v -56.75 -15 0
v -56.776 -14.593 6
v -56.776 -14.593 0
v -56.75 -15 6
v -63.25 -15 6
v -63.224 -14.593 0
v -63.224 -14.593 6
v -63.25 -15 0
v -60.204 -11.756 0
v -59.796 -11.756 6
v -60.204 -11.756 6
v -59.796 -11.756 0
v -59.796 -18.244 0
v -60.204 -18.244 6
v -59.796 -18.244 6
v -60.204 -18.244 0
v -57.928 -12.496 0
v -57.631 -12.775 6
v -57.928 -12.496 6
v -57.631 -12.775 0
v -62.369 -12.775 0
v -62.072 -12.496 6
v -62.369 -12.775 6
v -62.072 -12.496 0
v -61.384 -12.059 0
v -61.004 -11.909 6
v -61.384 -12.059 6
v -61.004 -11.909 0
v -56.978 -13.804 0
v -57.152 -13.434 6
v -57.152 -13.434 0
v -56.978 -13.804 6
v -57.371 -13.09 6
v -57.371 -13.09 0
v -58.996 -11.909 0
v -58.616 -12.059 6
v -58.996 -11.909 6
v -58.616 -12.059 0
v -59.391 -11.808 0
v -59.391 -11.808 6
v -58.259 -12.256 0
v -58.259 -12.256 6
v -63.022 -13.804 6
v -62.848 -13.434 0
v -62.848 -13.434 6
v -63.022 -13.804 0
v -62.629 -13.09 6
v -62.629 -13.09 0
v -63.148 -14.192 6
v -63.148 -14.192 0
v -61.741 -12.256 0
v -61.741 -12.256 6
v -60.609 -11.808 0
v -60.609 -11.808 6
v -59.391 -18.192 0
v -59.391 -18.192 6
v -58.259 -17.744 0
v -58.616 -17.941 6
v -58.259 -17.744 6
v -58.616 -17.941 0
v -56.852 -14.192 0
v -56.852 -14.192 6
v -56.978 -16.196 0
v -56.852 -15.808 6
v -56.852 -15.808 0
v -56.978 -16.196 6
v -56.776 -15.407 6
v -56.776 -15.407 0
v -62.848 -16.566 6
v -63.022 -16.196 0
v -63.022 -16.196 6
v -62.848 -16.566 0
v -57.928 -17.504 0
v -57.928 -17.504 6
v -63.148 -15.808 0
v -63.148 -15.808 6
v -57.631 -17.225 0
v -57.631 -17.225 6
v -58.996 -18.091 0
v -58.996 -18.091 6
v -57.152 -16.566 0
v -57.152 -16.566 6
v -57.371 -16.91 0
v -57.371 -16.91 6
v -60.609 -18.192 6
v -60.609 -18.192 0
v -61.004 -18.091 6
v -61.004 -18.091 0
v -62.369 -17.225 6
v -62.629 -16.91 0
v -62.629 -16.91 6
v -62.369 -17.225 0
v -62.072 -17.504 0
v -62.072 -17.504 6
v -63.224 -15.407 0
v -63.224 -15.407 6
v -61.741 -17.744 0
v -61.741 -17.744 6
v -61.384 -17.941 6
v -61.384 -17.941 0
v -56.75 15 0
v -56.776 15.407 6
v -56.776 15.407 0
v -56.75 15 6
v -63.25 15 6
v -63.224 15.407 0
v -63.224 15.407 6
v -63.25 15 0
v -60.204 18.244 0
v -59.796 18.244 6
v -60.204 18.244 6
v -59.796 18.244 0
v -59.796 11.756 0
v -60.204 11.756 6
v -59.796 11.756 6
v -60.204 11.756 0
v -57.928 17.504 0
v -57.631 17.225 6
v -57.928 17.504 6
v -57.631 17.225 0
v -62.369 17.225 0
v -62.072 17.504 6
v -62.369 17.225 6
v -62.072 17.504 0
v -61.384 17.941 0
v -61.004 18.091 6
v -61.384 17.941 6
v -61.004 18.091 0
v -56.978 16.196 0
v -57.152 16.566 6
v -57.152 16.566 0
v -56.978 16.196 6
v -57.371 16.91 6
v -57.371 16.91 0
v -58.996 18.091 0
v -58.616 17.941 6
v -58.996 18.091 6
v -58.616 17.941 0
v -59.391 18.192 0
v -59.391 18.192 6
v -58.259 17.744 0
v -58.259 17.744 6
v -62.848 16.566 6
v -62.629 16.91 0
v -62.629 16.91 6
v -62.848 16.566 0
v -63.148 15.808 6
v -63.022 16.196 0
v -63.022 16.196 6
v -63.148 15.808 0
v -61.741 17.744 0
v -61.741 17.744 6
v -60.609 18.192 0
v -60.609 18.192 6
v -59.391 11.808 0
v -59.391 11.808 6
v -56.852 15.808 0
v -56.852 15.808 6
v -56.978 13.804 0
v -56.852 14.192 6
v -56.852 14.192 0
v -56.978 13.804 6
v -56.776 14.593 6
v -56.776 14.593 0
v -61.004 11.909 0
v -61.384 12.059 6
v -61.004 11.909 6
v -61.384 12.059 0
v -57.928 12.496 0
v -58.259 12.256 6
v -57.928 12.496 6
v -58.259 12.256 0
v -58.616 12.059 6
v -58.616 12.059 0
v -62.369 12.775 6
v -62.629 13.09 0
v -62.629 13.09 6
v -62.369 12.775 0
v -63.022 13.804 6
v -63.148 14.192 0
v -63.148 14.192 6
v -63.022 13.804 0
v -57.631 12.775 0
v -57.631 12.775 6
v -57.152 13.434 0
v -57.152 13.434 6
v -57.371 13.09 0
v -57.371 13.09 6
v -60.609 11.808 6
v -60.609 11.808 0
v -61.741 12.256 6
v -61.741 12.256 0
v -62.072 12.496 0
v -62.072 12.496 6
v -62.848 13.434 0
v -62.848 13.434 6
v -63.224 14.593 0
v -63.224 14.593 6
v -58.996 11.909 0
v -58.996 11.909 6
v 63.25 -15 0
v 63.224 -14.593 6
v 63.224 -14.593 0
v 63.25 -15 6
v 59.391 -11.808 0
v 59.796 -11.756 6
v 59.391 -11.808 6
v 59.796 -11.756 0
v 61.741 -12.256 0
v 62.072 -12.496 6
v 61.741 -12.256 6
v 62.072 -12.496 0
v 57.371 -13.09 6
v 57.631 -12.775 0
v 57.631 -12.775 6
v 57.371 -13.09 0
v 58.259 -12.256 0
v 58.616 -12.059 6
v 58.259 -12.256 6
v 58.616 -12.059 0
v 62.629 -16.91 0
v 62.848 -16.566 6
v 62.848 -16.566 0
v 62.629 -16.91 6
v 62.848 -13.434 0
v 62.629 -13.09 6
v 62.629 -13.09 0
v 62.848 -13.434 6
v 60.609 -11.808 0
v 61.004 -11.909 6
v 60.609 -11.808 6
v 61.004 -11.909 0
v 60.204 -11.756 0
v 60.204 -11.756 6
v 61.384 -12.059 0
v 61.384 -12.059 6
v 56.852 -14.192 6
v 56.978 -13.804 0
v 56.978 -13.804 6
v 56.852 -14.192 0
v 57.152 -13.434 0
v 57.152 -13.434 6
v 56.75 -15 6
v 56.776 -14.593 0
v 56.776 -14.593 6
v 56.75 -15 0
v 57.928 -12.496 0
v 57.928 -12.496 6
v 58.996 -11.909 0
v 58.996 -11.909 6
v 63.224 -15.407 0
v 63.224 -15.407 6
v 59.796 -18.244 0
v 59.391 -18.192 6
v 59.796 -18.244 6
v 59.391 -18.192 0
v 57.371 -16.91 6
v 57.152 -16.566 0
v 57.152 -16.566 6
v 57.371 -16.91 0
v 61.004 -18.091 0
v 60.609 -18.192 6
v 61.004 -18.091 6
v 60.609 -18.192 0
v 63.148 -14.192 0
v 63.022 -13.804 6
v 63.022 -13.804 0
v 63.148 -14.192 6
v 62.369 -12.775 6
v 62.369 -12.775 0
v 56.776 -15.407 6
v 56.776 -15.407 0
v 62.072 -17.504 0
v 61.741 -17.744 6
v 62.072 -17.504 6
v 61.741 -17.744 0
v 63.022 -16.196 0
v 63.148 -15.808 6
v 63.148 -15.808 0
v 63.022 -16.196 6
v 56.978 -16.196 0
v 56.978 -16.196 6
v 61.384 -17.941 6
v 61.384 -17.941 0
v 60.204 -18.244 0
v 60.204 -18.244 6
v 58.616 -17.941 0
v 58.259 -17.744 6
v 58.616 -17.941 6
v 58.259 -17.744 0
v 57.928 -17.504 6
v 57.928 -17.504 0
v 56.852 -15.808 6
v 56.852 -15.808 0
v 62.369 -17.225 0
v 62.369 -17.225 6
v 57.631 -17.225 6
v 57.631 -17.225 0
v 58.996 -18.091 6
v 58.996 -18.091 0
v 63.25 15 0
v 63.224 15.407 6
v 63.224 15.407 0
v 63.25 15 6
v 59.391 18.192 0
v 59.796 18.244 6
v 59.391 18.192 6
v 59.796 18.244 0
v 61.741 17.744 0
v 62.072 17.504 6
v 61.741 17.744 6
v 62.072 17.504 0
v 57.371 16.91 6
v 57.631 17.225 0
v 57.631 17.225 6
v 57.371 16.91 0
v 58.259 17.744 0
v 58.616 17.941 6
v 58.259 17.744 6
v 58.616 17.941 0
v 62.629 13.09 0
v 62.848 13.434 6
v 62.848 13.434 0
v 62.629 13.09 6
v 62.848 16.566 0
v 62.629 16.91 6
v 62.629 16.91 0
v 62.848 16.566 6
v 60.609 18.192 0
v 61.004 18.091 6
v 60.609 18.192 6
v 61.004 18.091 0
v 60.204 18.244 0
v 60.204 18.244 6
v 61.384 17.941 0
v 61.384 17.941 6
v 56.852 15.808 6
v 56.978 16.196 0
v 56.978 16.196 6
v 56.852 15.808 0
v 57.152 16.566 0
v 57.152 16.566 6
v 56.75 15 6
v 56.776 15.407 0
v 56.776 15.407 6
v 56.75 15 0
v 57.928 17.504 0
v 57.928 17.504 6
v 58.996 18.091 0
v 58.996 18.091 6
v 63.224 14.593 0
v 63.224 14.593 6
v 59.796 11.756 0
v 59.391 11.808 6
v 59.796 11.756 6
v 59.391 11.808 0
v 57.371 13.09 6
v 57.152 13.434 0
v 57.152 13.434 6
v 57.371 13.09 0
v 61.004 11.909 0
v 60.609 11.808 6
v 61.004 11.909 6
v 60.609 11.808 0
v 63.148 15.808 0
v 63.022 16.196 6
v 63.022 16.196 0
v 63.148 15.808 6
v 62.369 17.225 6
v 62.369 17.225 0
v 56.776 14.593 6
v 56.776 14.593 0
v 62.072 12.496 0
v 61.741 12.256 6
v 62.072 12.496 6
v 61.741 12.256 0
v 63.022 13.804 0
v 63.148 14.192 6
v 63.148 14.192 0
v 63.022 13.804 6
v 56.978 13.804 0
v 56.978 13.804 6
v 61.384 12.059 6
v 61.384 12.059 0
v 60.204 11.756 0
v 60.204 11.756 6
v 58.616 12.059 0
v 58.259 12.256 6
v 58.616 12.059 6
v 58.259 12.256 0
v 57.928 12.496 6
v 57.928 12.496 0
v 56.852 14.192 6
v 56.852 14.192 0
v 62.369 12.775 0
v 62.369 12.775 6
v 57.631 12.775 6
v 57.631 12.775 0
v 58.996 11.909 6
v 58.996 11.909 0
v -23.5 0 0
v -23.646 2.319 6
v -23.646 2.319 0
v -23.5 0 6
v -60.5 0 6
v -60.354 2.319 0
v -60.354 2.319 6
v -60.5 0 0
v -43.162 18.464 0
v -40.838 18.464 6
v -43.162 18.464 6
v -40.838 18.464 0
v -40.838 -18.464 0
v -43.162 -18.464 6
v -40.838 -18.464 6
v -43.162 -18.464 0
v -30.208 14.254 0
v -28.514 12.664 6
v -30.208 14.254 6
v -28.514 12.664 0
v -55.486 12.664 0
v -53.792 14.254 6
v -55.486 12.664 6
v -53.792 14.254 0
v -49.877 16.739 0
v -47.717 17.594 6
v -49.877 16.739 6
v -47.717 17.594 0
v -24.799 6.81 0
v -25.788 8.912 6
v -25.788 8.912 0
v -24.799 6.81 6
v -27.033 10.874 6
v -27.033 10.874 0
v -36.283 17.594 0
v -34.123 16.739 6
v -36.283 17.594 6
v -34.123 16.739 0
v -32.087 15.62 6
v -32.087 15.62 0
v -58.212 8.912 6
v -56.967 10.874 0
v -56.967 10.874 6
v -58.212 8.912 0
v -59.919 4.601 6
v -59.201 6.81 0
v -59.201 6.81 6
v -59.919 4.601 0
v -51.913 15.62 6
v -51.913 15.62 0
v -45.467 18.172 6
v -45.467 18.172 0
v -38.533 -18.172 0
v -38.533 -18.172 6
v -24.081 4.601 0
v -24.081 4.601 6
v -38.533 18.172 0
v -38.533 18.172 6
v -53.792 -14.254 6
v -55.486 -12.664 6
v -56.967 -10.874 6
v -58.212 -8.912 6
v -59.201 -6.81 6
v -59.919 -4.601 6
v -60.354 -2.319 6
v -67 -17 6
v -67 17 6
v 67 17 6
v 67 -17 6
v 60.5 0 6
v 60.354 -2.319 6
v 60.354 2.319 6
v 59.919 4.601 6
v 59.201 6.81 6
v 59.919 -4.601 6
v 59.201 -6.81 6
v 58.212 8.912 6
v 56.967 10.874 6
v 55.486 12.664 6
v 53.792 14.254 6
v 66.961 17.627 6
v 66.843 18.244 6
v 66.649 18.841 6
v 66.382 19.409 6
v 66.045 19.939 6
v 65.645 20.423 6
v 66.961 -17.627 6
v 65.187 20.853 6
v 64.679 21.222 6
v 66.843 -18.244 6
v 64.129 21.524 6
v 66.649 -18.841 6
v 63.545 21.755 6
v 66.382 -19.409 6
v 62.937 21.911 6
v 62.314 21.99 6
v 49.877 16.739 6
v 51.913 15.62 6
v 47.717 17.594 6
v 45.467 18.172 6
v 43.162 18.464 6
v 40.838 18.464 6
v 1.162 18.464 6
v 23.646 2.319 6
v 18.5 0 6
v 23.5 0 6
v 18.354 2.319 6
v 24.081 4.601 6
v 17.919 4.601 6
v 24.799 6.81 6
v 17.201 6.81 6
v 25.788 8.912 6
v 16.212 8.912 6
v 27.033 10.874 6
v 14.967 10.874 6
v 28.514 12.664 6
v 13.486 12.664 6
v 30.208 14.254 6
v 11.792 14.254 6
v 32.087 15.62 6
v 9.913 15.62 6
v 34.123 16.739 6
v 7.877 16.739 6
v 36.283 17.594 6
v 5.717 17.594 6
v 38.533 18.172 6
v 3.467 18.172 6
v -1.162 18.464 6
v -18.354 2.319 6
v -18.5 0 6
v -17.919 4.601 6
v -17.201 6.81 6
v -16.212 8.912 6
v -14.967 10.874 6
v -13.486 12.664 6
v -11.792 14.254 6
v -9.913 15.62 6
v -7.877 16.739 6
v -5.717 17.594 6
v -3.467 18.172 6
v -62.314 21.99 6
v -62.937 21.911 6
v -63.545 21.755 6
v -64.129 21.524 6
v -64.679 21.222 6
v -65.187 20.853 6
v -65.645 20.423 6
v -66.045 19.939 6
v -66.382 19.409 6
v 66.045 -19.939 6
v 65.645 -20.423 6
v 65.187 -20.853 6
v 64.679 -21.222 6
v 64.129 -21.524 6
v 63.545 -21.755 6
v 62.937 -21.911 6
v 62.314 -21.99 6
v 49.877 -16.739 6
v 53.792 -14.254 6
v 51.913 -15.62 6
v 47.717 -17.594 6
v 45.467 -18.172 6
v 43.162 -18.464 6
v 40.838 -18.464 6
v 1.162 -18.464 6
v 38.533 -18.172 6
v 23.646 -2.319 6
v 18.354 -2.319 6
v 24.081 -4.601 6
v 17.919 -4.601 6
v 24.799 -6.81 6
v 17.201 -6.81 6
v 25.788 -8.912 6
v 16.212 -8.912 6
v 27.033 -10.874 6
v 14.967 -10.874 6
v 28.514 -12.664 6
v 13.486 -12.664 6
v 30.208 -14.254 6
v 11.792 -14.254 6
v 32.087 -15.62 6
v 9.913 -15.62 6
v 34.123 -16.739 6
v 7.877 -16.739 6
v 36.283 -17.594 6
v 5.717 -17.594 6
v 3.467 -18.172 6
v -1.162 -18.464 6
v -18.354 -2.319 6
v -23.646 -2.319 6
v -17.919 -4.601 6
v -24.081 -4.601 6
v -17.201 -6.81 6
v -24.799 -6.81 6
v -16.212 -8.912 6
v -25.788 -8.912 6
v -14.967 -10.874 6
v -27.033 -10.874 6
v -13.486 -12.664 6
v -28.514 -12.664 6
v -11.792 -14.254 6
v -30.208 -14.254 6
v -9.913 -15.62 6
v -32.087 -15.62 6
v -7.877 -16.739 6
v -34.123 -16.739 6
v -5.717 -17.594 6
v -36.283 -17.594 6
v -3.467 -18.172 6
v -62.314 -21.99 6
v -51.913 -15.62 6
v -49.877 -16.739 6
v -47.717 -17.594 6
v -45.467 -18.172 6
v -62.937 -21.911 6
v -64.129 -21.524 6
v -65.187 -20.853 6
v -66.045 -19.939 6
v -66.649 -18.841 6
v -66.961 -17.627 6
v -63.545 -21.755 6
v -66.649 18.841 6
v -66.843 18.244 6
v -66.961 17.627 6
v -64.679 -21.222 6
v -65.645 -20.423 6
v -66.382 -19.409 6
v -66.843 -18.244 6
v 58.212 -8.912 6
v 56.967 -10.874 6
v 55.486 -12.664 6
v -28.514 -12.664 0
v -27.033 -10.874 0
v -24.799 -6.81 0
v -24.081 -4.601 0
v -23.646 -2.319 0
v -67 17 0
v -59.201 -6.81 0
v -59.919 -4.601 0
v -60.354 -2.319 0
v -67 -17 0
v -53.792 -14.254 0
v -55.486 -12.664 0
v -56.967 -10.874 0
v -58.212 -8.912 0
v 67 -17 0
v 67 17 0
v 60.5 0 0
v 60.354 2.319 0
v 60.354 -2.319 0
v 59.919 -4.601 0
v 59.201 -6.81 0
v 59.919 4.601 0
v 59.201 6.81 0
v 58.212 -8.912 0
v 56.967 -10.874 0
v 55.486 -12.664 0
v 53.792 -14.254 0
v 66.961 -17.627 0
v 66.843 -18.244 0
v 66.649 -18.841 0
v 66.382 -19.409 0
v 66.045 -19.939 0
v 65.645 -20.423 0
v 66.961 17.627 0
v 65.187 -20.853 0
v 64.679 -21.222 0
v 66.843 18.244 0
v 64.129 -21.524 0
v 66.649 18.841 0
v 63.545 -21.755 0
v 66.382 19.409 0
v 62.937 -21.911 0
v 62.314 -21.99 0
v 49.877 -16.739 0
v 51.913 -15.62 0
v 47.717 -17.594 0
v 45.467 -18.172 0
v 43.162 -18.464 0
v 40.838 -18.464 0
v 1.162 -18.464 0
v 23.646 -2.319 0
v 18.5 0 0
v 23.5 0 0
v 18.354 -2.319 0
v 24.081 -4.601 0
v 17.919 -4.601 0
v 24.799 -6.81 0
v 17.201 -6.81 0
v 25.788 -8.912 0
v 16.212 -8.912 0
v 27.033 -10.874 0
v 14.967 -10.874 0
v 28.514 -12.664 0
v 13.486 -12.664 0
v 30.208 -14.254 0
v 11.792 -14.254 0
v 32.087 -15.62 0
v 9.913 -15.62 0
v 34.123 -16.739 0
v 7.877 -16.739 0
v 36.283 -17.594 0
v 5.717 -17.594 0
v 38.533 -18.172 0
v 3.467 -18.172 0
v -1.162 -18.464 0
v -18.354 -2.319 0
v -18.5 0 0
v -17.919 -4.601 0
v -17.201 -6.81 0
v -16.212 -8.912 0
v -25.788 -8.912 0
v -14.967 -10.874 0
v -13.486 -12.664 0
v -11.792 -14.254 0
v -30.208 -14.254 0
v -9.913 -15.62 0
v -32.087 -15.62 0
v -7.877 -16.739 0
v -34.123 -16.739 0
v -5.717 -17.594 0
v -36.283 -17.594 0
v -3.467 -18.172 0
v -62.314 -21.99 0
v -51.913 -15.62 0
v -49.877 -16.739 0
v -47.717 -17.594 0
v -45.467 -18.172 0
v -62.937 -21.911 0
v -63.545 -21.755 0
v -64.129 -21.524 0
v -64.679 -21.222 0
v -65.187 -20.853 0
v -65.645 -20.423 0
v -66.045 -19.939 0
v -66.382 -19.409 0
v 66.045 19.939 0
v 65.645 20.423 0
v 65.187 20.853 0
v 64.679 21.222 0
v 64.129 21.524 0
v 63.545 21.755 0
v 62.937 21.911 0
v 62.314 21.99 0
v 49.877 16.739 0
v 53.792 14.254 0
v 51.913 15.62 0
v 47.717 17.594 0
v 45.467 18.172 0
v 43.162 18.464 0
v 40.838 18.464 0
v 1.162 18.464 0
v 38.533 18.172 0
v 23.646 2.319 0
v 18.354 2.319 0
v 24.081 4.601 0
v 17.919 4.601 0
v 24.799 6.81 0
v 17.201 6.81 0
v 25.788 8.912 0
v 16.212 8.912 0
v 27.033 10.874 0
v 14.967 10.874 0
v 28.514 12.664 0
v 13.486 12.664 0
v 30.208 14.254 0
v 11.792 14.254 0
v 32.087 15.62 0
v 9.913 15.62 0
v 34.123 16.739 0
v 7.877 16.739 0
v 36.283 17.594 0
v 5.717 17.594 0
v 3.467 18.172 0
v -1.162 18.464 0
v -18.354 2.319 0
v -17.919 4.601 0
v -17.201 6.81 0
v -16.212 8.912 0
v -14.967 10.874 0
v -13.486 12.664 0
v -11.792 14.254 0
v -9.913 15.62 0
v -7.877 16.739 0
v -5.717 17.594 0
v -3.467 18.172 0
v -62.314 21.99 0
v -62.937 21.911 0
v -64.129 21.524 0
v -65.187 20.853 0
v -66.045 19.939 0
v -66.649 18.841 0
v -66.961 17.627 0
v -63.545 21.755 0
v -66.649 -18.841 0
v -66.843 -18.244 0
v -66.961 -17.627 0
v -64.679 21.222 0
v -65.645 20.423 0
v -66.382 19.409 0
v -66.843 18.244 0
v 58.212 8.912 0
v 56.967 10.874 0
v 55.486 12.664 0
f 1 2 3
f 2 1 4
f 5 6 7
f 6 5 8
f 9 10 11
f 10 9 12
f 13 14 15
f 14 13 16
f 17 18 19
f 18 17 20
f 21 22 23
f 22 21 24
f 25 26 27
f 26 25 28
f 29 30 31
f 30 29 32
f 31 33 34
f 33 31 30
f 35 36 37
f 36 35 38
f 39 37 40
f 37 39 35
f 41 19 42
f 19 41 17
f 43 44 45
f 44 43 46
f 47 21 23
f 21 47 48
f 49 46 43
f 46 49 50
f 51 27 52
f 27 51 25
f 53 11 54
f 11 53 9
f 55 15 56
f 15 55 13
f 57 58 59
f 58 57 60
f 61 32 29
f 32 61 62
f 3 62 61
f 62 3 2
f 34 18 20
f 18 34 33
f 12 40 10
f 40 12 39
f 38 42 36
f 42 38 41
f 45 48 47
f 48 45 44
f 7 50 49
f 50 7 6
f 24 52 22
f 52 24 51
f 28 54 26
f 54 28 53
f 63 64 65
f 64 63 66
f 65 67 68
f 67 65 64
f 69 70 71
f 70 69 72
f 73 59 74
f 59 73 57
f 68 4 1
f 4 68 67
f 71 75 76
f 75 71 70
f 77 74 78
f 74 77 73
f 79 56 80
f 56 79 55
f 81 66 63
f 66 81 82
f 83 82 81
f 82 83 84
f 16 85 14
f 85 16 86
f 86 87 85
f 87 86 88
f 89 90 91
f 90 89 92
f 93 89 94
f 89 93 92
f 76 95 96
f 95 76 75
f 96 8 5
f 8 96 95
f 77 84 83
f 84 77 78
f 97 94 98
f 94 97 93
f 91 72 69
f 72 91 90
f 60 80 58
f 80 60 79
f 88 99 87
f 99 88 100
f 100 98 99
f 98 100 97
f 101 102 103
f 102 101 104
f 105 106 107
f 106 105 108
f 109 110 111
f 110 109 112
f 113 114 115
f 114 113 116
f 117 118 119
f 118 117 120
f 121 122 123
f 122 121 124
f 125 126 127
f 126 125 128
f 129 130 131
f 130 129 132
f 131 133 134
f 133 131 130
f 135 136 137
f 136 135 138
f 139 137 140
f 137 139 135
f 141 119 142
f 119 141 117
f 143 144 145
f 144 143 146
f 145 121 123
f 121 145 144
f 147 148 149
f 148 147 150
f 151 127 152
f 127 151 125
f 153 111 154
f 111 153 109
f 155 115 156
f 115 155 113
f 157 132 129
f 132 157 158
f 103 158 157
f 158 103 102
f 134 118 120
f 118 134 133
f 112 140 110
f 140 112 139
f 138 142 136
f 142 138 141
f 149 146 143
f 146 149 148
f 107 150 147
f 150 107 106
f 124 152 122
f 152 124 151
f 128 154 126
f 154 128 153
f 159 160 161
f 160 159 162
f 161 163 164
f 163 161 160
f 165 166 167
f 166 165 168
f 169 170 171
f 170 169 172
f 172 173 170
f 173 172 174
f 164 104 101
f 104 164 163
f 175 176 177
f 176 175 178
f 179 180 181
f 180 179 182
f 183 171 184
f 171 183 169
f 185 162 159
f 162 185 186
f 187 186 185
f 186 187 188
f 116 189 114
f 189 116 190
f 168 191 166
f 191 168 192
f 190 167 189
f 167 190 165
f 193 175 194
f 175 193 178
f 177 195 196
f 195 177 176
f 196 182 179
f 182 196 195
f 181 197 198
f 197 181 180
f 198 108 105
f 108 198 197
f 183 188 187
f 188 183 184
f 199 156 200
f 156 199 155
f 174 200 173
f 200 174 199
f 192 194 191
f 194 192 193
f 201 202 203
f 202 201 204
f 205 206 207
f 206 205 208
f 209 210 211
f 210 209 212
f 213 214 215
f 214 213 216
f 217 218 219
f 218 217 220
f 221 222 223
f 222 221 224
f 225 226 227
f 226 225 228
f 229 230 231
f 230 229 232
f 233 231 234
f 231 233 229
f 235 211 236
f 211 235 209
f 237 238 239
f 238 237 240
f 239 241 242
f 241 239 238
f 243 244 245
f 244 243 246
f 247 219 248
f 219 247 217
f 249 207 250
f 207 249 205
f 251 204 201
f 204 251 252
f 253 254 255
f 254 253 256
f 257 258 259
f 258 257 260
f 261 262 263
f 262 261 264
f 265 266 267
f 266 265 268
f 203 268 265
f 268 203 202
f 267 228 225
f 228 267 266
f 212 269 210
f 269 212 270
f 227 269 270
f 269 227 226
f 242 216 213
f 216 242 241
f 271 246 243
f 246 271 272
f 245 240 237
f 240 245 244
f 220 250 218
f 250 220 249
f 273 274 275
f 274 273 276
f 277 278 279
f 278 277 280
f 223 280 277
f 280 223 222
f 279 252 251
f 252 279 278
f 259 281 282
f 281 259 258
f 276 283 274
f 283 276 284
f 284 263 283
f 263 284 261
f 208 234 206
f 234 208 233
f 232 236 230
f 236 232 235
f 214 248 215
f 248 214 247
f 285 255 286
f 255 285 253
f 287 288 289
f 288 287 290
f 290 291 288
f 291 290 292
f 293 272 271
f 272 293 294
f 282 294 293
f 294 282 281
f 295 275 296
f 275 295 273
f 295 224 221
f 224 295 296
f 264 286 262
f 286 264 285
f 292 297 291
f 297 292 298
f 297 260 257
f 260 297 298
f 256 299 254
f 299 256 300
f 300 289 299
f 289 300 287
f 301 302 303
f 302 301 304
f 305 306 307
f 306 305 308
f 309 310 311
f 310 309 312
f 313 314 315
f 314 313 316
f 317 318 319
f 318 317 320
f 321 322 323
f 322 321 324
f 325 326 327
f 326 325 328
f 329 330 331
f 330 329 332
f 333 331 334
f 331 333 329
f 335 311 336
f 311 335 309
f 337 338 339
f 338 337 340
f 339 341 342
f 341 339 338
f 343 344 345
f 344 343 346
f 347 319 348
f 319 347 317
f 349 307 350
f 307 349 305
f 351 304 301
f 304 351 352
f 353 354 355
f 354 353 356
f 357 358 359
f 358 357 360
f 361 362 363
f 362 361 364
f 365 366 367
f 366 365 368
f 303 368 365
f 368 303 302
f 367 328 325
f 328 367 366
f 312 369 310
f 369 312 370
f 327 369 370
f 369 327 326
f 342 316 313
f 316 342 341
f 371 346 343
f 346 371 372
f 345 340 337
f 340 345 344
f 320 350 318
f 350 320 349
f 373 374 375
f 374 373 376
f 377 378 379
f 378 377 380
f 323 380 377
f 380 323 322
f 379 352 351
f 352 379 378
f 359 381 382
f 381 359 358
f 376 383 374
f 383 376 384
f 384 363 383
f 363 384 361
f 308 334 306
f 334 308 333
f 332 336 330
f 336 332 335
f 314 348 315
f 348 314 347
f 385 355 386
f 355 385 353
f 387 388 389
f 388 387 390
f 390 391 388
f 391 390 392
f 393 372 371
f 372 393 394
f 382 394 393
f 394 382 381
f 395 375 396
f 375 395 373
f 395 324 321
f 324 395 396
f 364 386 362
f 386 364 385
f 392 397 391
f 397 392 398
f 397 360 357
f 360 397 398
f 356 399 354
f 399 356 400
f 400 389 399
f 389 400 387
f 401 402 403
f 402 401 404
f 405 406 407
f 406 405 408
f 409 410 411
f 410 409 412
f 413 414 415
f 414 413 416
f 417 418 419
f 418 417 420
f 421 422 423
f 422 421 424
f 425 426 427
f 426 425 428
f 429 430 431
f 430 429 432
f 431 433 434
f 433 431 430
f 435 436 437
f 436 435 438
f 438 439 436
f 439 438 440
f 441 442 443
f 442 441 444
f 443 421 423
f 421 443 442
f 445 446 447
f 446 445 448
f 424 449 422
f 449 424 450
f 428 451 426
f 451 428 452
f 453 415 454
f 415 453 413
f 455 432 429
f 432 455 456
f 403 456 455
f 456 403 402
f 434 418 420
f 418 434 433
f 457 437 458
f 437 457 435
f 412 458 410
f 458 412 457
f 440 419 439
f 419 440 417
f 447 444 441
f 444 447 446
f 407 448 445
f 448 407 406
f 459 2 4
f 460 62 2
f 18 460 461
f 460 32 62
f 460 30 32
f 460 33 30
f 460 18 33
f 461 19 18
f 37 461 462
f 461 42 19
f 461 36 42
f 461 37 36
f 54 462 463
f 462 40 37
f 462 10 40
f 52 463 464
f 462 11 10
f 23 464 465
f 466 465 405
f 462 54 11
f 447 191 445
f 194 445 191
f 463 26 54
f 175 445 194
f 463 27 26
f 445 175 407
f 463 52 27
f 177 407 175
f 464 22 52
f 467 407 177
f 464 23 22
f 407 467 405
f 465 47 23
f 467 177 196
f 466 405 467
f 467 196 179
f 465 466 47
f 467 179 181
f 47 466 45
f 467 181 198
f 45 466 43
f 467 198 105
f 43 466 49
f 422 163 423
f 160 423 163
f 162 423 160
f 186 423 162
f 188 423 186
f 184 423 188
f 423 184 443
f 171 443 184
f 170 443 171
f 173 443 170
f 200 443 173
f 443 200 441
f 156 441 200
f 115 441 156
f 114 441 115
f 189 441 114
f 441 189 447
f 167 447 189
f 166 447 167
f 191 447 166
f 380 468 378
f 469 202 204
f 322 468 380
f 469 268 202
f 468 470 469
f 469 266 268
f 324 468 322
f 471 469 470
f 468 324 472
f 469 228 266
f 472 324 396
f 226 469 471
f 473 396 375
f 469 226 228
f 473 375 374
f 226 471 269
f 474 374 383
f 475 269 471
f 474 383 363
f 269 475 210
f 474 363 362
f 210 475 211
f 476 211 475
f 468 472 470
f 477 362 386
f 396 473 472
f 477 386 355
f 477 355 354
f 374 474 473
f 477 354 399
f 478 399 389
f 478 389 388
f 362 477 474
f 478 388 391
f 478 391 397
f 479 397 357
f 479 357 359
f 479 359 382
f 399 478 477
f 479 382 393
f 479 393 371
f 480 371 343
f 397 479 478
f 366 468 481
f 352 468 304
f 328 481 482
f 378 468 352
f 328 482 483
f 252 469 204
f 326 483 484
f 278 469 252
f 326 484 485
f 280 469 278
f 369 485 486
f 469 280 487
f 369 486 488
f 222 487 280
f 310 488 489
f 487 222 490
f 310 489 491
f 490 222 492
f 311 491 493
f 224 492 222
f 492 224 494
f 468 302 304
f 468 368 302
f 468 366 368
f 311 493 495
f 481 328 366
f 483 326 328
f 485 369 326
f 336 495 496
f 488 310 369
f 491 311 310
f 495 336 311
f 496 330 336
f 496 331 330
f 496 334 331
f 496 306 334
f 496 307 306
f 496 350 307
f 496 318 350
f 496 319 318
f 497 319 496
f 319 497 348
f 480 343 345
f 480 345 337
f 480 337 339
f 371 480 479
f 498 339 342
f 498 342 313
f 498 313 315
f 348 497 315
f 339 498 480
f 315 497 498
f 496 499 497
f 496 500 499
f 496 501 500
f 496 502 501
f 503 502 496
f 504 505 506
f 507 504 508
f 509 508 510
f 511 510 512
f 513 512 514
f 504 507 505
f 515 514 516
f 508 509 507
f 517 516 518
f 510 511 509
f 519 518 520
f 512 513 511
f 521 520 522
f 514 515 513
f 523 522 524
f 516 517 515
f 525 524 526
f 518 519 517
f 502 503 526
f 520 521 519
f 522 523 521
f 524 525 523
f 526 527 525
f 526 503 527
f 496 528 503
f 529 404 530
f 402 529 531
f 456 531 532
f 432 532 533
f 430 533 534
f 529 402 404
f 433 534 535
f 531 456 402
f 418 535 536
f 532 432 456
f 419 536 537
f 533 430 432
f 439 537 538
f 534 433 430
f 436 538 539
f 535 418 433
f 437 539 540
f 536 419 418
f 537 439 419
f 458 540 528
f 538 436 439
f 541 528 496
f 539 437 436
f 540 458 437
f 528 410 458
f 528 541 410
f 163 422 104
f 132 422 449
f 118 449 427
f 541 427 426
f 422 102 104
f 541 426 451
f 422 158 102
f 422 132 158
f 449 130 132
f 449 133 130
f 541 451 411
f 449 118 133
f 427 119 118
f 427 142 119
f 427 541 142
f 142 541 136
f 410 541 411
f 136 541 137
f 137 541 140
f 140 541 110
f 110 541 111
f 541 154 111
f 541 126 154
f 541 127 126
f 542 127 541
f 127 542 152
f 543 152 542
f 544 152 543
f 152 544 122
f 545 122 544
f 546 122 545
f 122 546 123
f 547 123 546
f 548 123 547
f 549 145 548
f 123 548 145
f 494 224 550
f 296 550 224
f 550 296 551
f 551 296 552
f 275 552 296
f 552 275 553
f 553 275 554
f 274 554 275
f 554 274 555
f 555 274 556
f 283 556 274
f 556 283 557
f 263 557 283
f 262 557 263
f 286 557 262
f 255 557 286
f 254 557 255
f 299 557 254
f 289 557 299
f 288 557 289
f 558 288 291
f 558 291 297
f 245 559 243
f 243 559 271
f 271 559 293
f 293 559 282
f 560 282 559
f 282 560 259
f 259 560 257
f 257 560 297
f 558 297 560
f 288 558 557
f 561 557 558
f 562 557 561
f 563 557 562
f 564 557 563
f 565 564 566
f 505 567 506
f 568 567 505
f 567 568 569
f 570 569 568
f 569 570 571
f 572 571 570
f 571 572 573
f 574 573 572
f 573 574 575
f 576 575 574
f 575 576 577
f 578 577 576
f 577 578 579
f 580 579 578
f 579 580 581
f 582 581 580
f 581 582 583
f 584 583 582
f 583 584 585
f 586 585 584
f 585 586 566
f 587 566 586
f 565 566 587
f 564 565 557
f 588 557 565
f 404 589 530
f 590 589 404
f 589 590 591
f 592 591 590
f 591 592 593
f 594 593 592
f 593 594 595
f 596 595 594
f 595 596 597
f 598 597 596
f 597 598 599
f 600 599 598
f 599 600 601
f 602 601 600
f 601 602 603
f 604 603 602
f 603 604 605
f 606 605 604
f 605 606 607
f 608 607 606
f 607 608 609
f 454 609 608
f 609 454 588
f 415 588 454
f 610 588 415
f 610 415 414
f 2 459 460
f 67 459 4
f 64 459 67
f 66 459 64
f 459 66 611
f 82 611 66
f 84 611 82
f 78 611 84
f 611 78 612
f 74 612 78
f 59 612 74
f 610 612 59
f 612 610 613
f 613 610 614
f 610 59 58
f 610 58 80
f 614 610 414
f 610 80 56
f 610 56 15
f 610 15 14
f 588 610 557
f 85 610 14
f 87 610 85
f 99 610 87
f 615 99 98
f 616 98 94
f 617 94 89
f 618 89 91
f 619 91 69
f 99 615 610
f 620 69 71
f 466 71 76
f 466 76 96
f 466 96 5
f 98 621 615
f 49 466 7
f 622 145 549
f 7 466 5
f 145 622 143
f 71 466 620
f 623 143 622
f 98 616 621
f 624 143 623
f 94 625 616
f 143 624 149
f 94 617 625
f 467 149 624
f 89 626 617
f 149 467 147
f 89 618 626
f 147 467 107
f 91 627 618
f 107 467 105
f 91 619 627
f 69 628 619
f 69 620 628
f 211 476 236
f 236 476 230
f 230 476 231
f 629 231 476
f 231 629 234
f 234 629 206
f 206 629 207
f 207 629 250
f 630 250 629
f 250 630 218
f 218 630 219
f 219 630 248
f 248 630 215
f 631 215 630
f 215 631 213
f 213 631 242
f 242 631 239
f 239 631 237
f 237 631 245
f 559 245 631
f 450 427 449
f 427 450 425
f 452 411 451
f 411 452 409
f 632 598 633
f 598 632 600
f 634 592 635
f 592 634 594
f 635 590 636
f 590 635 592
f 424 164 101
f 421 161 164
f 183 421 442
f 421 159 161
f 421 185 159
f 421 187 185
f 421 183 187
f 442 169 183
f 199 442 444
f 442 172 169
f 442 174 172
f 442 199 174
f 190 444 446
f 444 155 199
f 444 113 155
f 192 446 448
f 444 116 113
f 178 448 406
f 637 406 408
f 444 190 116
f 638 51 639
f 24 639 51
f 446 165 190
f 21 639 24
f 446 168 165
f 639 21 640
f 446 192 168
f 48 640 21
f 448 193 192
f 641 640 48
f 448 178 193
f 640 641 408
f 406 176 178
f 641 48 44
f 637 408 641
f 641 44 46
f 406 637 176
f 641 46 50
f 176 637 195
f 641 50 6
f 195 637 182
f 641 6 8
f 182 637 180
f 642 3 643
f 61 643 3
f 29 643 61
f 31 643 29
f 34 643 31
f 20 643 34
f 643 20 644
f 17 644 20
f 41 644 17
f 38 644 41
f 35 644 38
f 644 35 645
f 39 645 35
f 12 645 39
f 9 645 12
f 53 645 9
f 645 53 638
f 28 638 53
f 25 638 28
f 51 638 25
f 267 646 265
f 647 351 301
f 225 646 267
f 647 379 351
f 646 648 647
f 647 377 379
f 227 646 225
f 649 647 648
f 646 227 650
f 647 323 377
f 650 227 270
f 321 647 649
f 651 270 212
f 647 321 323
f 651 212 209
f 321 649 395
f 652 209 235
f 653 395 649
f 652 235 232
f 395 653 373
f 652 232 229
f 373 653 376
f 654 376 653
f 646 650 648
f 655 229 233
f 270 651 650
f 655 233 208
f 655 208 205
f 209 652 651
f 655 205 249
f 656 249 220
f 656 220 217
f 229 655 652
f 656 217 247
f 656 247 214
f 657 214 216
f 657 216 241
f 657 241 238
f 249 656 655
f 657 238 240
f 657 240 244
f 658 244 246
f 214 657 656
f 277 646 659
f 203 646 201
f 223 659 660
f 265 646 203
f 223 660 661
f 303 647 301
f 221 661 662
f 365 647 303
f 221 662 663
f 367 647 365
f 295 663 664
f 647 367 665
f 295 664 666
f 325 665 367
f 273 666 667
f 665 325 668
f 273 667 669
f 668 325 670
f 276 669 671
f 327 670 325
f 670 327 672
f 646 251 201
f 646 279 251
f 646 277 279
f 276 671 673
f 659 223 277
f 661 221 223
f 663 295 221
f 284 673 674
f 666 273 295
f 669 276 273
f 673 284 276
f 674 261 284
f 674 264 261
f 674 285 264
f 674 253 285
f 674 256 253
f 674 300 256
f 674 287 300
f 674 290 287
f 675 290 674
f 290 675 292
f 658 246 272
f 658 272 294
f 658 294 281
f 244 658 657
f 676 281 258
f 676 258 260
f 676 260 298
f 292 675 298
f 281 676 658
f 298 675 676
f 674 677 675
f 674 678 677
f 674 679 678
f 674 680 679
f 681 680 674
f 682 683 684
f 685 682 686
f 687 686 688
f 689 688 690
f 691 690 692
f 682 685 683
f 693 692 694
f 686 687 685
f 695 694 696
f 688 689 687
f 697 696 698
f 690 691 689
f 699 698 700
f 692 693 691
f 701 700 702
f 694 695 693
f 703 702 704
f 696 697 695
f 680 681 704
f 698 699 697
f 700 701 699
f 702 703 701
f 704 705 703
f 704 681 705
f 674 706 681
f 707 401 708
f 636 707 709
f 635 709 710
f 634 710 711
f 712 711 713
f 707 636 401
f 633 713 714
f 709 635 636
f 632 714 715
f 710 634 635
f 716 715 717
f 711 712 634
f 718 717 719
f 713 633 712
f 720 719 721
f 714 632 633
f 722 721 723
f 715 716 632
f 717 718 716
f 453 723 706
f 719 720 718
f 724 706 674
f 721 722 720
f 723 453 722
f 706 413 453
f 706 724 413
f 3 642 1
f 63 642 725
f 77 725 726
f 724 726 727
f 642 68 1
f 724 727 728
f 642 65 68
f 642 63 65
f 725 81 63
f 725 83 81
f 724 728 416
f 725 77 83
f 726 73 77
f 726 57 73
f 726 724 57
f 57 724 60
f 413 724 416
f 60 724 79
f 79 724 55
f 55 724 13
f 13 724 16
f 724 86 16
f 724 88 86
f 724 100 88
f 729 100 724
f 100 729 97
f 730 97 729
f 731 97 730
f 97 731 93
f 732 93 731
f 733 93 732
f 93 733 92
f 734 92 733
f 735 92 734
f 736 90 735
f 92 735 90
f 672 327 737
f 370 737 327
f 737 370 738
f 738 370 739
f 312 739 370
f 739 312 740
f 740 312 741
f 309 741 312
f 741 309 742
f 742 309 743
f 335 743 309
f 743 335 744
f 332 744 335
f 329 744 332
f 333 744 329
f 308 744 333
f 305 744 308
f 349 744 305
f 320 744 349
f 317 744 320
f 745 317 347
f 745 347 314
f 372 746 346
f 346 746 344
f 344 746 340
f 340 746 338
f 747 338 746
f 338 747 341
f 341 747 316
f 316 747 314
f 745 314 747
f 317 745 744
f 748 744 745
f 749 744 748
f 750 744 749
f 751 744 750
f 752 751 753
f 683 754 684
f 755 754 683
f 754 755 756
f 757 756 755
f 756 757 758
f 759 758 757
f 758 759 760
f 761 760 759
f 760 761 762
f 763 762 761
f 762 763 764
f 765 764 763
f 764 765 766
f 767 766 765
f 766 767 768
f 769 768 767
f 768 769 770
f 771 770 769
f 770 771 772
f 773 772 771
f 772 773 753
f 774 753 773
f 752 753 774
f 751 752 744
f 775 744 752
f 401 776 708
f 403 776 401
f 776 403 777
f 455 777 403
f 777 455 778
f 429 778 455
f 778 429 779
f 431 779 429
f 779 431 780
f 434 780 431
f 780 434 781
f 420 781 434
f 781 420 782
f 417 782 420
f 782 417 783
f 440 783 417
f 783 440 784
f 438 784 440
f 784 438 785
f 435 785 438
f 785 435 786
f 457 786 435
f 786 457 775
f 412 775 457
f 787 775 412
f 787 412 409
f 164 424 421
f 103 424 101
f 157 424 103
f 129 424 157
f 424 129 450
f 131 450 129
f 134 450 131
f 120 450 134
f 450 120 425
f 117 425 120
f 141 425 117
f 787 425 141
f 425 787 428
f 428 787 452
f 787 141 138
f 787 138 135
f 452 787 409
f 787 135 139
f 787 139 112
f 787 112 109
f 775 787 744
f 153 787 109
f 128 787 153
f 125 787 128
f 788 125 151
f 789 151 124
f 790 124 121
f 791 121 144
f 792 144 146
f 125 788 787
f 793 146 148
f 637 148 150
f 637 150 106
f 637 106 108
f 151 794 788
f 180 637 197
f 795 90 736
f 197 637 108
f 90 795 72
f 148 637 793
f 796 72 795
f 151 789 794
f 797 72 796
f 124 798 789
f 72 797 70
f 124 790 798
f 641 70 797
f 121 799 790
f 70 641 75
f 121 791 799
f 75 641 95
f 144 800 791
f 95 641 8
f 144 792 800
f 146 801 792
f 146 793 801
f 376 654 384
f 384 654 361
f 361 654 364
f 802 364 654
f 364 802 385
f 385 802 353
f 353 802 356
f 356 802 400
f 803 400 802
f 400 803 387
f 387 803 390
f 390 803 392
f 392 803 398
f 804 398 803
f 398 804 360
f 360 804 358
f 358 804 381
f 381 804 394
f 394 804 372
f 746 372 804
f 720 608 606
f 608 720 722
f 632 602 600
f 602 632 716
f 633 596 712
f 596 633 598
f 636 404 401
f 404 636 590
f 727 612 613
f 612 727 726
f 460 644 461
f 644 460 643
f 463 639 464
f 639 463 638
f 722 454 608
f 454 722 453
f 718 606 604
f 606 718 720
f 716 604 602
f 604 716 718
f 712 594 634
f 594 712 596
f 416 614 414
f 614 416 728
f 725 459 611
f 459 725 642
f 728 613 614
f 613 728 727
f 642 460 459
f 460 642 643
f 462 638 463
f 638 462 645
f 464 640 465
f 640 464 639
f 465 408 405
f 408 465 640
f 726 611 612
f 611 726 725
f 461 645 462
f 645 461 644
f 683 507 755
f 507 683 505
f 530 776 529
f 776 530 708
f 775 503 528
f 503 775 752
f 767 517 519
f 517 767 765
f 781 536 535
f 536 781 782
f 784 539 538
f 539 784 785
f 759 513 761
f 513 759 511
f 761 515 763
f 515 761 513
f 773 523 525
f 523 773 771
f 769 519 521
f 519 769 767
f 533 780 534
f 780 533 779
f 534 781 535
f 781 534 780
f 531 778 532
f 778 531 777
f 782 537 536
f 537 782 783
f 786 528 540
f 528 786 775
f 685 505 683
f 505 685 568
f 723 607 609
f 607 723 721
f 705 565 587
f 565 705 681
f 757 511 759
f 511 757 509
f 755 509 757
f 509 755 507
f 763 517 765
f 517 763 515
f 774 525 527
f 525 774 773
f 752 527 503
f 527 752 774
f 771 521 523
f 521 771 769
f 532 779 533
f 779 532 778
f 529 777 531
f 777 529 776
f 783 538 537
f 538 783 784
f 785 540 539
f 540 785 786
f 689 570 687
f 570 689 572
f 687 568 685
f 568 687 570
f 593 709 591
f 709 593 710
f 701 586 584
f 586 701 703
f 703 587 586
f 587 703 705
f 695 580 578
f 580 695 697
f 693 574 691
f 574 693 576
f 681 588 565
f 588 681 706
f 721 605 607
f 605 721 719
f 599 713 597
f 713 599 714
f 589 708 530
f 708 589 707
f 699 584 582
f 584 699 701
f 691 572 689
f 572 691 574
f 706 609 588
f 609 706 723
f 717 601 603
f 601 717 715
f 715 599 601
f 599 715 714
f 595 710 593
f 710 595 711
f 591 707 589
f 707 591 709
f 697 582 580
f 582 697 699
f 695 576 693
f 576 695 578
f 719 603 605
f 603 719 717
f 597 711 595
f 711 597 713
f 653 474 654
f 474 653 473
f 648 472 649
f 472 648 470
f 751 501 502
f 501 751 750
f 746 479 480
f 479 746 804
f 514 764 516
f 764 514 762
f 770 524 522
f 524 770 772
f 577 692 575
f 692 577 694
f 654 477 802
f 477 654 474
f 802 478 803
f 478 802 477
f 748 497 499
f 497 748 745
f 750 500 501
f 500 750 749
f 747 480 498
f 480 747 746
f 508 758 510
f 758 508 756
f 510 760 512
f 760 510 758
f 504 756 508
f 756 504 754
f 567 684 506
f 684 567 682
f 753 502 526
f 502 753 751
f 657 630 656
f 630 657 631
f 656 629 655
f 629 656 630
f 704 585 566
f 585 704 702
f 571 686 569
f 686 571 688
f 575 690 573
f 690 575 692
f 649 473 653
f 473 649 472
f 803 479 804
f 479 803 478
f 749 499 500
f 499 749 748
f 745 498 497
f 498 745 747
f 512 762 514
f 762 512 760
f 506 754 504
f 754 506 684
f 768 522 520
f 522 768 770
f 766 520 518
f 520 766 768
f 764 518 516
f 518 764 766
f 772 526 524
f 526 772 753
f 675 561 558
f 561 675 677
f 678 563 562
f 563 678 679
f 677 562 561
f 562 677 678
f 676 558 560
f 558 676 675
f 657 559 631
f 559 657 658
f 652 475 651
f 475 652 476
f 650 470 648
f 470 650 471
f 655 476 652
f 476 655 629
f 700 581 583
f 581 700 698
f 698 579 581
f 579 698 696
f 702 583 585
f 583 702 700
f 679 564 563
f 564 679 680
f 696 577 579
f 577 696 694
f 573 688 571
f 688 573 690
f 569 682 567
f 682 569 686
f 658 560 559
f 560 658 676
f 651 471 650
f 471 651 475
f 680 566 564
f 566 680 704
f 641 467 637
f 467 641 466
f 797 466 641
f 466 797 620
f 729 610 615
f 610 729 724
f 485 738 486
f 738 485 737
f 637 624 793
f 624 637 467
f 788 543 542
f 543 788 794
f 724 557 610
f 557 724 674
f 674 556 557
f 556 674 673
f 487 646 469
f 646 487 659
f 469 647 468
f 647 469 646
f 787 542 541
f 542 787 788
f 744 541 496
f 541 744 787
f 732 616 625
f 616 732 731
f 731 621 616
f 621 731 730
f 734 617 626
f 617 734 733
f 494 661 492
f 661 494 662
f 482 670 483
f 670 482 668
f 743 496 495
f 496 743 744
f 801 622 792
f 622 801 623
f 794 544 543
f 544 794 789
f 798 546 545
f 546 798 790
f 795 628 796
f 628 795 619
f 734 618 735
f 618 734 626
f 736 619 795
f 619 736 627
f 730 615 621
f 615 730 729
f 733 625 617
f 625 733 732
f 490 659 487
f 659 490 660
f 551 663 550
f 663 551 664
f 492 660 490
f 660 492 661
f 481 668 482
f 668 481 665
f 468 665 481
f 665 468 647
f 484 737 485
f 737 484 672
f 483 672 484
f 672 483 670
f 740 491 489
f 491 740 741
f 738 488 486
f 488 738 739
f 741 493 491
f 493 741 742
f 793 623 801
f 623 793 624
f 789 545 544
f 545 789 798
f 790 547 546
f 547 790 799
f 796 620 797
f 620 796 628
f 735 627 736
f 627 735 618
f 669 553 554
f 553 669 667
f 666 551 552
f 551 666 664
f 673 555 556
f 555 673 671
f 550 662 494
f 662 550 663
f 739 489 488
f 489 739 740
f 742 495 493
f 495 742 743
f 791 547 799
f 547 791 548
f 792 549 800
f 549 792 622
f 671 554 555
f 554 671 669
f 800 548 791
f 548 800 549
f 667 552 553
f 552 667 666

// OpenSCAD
$fn = 50;


difference() {
	union() {
		hull() {
			translate(v = [-62.0000000000, 17.0000000000, 0]) {
				cylinder(h = 6, r = 5);
			}
			translate(v = [62.0000000000, 17.0000000000, 0]) {
				cylinder(h = 6, r = 5);
			}
			translate(v = [-62.0000000000, -17.0000000000, 0]) {
				cylinder(h = 6, r = 5);
			}
			translate(v = [62.0000000000, -17.0000000000, 0]) {
				cylinder(h = 6, r = 5);
			}
		}
	}
	union() {
		#translate(v = [-60.0000000000, -15.0000000000, -100.0000000000]) {
			cylinder(h = 200, r = 3.2500000000);
		}
		#translate(v = [-60.0000000000, 15.0000000000, -100.0000000000]) {
			cylinder(h = 200, r = 3.2500000000);
		}
		#translate(v = [60.0000000000, -15.0000000000, -100.0000000000]) {
			cylinder(h = 200, r = 3.2500000000);
		}
		#translate(v = [60.0000000000, 15.0000000000, -100.0000000000]) {
			cylinder(h = 200, r = 3.2500000000);
		}
		#translate(v = [-42.0000000000, 0, 0]) {
			cylinder(h = 6, r = 18.5000000000);
		}
		#cylinder(h = 6, r = 18.5000000000);
		#translate(v = [42.0000000000, 0, 0]) {
			cylinder(h = 6, r = 18.5000000000);
		}
	}
}
